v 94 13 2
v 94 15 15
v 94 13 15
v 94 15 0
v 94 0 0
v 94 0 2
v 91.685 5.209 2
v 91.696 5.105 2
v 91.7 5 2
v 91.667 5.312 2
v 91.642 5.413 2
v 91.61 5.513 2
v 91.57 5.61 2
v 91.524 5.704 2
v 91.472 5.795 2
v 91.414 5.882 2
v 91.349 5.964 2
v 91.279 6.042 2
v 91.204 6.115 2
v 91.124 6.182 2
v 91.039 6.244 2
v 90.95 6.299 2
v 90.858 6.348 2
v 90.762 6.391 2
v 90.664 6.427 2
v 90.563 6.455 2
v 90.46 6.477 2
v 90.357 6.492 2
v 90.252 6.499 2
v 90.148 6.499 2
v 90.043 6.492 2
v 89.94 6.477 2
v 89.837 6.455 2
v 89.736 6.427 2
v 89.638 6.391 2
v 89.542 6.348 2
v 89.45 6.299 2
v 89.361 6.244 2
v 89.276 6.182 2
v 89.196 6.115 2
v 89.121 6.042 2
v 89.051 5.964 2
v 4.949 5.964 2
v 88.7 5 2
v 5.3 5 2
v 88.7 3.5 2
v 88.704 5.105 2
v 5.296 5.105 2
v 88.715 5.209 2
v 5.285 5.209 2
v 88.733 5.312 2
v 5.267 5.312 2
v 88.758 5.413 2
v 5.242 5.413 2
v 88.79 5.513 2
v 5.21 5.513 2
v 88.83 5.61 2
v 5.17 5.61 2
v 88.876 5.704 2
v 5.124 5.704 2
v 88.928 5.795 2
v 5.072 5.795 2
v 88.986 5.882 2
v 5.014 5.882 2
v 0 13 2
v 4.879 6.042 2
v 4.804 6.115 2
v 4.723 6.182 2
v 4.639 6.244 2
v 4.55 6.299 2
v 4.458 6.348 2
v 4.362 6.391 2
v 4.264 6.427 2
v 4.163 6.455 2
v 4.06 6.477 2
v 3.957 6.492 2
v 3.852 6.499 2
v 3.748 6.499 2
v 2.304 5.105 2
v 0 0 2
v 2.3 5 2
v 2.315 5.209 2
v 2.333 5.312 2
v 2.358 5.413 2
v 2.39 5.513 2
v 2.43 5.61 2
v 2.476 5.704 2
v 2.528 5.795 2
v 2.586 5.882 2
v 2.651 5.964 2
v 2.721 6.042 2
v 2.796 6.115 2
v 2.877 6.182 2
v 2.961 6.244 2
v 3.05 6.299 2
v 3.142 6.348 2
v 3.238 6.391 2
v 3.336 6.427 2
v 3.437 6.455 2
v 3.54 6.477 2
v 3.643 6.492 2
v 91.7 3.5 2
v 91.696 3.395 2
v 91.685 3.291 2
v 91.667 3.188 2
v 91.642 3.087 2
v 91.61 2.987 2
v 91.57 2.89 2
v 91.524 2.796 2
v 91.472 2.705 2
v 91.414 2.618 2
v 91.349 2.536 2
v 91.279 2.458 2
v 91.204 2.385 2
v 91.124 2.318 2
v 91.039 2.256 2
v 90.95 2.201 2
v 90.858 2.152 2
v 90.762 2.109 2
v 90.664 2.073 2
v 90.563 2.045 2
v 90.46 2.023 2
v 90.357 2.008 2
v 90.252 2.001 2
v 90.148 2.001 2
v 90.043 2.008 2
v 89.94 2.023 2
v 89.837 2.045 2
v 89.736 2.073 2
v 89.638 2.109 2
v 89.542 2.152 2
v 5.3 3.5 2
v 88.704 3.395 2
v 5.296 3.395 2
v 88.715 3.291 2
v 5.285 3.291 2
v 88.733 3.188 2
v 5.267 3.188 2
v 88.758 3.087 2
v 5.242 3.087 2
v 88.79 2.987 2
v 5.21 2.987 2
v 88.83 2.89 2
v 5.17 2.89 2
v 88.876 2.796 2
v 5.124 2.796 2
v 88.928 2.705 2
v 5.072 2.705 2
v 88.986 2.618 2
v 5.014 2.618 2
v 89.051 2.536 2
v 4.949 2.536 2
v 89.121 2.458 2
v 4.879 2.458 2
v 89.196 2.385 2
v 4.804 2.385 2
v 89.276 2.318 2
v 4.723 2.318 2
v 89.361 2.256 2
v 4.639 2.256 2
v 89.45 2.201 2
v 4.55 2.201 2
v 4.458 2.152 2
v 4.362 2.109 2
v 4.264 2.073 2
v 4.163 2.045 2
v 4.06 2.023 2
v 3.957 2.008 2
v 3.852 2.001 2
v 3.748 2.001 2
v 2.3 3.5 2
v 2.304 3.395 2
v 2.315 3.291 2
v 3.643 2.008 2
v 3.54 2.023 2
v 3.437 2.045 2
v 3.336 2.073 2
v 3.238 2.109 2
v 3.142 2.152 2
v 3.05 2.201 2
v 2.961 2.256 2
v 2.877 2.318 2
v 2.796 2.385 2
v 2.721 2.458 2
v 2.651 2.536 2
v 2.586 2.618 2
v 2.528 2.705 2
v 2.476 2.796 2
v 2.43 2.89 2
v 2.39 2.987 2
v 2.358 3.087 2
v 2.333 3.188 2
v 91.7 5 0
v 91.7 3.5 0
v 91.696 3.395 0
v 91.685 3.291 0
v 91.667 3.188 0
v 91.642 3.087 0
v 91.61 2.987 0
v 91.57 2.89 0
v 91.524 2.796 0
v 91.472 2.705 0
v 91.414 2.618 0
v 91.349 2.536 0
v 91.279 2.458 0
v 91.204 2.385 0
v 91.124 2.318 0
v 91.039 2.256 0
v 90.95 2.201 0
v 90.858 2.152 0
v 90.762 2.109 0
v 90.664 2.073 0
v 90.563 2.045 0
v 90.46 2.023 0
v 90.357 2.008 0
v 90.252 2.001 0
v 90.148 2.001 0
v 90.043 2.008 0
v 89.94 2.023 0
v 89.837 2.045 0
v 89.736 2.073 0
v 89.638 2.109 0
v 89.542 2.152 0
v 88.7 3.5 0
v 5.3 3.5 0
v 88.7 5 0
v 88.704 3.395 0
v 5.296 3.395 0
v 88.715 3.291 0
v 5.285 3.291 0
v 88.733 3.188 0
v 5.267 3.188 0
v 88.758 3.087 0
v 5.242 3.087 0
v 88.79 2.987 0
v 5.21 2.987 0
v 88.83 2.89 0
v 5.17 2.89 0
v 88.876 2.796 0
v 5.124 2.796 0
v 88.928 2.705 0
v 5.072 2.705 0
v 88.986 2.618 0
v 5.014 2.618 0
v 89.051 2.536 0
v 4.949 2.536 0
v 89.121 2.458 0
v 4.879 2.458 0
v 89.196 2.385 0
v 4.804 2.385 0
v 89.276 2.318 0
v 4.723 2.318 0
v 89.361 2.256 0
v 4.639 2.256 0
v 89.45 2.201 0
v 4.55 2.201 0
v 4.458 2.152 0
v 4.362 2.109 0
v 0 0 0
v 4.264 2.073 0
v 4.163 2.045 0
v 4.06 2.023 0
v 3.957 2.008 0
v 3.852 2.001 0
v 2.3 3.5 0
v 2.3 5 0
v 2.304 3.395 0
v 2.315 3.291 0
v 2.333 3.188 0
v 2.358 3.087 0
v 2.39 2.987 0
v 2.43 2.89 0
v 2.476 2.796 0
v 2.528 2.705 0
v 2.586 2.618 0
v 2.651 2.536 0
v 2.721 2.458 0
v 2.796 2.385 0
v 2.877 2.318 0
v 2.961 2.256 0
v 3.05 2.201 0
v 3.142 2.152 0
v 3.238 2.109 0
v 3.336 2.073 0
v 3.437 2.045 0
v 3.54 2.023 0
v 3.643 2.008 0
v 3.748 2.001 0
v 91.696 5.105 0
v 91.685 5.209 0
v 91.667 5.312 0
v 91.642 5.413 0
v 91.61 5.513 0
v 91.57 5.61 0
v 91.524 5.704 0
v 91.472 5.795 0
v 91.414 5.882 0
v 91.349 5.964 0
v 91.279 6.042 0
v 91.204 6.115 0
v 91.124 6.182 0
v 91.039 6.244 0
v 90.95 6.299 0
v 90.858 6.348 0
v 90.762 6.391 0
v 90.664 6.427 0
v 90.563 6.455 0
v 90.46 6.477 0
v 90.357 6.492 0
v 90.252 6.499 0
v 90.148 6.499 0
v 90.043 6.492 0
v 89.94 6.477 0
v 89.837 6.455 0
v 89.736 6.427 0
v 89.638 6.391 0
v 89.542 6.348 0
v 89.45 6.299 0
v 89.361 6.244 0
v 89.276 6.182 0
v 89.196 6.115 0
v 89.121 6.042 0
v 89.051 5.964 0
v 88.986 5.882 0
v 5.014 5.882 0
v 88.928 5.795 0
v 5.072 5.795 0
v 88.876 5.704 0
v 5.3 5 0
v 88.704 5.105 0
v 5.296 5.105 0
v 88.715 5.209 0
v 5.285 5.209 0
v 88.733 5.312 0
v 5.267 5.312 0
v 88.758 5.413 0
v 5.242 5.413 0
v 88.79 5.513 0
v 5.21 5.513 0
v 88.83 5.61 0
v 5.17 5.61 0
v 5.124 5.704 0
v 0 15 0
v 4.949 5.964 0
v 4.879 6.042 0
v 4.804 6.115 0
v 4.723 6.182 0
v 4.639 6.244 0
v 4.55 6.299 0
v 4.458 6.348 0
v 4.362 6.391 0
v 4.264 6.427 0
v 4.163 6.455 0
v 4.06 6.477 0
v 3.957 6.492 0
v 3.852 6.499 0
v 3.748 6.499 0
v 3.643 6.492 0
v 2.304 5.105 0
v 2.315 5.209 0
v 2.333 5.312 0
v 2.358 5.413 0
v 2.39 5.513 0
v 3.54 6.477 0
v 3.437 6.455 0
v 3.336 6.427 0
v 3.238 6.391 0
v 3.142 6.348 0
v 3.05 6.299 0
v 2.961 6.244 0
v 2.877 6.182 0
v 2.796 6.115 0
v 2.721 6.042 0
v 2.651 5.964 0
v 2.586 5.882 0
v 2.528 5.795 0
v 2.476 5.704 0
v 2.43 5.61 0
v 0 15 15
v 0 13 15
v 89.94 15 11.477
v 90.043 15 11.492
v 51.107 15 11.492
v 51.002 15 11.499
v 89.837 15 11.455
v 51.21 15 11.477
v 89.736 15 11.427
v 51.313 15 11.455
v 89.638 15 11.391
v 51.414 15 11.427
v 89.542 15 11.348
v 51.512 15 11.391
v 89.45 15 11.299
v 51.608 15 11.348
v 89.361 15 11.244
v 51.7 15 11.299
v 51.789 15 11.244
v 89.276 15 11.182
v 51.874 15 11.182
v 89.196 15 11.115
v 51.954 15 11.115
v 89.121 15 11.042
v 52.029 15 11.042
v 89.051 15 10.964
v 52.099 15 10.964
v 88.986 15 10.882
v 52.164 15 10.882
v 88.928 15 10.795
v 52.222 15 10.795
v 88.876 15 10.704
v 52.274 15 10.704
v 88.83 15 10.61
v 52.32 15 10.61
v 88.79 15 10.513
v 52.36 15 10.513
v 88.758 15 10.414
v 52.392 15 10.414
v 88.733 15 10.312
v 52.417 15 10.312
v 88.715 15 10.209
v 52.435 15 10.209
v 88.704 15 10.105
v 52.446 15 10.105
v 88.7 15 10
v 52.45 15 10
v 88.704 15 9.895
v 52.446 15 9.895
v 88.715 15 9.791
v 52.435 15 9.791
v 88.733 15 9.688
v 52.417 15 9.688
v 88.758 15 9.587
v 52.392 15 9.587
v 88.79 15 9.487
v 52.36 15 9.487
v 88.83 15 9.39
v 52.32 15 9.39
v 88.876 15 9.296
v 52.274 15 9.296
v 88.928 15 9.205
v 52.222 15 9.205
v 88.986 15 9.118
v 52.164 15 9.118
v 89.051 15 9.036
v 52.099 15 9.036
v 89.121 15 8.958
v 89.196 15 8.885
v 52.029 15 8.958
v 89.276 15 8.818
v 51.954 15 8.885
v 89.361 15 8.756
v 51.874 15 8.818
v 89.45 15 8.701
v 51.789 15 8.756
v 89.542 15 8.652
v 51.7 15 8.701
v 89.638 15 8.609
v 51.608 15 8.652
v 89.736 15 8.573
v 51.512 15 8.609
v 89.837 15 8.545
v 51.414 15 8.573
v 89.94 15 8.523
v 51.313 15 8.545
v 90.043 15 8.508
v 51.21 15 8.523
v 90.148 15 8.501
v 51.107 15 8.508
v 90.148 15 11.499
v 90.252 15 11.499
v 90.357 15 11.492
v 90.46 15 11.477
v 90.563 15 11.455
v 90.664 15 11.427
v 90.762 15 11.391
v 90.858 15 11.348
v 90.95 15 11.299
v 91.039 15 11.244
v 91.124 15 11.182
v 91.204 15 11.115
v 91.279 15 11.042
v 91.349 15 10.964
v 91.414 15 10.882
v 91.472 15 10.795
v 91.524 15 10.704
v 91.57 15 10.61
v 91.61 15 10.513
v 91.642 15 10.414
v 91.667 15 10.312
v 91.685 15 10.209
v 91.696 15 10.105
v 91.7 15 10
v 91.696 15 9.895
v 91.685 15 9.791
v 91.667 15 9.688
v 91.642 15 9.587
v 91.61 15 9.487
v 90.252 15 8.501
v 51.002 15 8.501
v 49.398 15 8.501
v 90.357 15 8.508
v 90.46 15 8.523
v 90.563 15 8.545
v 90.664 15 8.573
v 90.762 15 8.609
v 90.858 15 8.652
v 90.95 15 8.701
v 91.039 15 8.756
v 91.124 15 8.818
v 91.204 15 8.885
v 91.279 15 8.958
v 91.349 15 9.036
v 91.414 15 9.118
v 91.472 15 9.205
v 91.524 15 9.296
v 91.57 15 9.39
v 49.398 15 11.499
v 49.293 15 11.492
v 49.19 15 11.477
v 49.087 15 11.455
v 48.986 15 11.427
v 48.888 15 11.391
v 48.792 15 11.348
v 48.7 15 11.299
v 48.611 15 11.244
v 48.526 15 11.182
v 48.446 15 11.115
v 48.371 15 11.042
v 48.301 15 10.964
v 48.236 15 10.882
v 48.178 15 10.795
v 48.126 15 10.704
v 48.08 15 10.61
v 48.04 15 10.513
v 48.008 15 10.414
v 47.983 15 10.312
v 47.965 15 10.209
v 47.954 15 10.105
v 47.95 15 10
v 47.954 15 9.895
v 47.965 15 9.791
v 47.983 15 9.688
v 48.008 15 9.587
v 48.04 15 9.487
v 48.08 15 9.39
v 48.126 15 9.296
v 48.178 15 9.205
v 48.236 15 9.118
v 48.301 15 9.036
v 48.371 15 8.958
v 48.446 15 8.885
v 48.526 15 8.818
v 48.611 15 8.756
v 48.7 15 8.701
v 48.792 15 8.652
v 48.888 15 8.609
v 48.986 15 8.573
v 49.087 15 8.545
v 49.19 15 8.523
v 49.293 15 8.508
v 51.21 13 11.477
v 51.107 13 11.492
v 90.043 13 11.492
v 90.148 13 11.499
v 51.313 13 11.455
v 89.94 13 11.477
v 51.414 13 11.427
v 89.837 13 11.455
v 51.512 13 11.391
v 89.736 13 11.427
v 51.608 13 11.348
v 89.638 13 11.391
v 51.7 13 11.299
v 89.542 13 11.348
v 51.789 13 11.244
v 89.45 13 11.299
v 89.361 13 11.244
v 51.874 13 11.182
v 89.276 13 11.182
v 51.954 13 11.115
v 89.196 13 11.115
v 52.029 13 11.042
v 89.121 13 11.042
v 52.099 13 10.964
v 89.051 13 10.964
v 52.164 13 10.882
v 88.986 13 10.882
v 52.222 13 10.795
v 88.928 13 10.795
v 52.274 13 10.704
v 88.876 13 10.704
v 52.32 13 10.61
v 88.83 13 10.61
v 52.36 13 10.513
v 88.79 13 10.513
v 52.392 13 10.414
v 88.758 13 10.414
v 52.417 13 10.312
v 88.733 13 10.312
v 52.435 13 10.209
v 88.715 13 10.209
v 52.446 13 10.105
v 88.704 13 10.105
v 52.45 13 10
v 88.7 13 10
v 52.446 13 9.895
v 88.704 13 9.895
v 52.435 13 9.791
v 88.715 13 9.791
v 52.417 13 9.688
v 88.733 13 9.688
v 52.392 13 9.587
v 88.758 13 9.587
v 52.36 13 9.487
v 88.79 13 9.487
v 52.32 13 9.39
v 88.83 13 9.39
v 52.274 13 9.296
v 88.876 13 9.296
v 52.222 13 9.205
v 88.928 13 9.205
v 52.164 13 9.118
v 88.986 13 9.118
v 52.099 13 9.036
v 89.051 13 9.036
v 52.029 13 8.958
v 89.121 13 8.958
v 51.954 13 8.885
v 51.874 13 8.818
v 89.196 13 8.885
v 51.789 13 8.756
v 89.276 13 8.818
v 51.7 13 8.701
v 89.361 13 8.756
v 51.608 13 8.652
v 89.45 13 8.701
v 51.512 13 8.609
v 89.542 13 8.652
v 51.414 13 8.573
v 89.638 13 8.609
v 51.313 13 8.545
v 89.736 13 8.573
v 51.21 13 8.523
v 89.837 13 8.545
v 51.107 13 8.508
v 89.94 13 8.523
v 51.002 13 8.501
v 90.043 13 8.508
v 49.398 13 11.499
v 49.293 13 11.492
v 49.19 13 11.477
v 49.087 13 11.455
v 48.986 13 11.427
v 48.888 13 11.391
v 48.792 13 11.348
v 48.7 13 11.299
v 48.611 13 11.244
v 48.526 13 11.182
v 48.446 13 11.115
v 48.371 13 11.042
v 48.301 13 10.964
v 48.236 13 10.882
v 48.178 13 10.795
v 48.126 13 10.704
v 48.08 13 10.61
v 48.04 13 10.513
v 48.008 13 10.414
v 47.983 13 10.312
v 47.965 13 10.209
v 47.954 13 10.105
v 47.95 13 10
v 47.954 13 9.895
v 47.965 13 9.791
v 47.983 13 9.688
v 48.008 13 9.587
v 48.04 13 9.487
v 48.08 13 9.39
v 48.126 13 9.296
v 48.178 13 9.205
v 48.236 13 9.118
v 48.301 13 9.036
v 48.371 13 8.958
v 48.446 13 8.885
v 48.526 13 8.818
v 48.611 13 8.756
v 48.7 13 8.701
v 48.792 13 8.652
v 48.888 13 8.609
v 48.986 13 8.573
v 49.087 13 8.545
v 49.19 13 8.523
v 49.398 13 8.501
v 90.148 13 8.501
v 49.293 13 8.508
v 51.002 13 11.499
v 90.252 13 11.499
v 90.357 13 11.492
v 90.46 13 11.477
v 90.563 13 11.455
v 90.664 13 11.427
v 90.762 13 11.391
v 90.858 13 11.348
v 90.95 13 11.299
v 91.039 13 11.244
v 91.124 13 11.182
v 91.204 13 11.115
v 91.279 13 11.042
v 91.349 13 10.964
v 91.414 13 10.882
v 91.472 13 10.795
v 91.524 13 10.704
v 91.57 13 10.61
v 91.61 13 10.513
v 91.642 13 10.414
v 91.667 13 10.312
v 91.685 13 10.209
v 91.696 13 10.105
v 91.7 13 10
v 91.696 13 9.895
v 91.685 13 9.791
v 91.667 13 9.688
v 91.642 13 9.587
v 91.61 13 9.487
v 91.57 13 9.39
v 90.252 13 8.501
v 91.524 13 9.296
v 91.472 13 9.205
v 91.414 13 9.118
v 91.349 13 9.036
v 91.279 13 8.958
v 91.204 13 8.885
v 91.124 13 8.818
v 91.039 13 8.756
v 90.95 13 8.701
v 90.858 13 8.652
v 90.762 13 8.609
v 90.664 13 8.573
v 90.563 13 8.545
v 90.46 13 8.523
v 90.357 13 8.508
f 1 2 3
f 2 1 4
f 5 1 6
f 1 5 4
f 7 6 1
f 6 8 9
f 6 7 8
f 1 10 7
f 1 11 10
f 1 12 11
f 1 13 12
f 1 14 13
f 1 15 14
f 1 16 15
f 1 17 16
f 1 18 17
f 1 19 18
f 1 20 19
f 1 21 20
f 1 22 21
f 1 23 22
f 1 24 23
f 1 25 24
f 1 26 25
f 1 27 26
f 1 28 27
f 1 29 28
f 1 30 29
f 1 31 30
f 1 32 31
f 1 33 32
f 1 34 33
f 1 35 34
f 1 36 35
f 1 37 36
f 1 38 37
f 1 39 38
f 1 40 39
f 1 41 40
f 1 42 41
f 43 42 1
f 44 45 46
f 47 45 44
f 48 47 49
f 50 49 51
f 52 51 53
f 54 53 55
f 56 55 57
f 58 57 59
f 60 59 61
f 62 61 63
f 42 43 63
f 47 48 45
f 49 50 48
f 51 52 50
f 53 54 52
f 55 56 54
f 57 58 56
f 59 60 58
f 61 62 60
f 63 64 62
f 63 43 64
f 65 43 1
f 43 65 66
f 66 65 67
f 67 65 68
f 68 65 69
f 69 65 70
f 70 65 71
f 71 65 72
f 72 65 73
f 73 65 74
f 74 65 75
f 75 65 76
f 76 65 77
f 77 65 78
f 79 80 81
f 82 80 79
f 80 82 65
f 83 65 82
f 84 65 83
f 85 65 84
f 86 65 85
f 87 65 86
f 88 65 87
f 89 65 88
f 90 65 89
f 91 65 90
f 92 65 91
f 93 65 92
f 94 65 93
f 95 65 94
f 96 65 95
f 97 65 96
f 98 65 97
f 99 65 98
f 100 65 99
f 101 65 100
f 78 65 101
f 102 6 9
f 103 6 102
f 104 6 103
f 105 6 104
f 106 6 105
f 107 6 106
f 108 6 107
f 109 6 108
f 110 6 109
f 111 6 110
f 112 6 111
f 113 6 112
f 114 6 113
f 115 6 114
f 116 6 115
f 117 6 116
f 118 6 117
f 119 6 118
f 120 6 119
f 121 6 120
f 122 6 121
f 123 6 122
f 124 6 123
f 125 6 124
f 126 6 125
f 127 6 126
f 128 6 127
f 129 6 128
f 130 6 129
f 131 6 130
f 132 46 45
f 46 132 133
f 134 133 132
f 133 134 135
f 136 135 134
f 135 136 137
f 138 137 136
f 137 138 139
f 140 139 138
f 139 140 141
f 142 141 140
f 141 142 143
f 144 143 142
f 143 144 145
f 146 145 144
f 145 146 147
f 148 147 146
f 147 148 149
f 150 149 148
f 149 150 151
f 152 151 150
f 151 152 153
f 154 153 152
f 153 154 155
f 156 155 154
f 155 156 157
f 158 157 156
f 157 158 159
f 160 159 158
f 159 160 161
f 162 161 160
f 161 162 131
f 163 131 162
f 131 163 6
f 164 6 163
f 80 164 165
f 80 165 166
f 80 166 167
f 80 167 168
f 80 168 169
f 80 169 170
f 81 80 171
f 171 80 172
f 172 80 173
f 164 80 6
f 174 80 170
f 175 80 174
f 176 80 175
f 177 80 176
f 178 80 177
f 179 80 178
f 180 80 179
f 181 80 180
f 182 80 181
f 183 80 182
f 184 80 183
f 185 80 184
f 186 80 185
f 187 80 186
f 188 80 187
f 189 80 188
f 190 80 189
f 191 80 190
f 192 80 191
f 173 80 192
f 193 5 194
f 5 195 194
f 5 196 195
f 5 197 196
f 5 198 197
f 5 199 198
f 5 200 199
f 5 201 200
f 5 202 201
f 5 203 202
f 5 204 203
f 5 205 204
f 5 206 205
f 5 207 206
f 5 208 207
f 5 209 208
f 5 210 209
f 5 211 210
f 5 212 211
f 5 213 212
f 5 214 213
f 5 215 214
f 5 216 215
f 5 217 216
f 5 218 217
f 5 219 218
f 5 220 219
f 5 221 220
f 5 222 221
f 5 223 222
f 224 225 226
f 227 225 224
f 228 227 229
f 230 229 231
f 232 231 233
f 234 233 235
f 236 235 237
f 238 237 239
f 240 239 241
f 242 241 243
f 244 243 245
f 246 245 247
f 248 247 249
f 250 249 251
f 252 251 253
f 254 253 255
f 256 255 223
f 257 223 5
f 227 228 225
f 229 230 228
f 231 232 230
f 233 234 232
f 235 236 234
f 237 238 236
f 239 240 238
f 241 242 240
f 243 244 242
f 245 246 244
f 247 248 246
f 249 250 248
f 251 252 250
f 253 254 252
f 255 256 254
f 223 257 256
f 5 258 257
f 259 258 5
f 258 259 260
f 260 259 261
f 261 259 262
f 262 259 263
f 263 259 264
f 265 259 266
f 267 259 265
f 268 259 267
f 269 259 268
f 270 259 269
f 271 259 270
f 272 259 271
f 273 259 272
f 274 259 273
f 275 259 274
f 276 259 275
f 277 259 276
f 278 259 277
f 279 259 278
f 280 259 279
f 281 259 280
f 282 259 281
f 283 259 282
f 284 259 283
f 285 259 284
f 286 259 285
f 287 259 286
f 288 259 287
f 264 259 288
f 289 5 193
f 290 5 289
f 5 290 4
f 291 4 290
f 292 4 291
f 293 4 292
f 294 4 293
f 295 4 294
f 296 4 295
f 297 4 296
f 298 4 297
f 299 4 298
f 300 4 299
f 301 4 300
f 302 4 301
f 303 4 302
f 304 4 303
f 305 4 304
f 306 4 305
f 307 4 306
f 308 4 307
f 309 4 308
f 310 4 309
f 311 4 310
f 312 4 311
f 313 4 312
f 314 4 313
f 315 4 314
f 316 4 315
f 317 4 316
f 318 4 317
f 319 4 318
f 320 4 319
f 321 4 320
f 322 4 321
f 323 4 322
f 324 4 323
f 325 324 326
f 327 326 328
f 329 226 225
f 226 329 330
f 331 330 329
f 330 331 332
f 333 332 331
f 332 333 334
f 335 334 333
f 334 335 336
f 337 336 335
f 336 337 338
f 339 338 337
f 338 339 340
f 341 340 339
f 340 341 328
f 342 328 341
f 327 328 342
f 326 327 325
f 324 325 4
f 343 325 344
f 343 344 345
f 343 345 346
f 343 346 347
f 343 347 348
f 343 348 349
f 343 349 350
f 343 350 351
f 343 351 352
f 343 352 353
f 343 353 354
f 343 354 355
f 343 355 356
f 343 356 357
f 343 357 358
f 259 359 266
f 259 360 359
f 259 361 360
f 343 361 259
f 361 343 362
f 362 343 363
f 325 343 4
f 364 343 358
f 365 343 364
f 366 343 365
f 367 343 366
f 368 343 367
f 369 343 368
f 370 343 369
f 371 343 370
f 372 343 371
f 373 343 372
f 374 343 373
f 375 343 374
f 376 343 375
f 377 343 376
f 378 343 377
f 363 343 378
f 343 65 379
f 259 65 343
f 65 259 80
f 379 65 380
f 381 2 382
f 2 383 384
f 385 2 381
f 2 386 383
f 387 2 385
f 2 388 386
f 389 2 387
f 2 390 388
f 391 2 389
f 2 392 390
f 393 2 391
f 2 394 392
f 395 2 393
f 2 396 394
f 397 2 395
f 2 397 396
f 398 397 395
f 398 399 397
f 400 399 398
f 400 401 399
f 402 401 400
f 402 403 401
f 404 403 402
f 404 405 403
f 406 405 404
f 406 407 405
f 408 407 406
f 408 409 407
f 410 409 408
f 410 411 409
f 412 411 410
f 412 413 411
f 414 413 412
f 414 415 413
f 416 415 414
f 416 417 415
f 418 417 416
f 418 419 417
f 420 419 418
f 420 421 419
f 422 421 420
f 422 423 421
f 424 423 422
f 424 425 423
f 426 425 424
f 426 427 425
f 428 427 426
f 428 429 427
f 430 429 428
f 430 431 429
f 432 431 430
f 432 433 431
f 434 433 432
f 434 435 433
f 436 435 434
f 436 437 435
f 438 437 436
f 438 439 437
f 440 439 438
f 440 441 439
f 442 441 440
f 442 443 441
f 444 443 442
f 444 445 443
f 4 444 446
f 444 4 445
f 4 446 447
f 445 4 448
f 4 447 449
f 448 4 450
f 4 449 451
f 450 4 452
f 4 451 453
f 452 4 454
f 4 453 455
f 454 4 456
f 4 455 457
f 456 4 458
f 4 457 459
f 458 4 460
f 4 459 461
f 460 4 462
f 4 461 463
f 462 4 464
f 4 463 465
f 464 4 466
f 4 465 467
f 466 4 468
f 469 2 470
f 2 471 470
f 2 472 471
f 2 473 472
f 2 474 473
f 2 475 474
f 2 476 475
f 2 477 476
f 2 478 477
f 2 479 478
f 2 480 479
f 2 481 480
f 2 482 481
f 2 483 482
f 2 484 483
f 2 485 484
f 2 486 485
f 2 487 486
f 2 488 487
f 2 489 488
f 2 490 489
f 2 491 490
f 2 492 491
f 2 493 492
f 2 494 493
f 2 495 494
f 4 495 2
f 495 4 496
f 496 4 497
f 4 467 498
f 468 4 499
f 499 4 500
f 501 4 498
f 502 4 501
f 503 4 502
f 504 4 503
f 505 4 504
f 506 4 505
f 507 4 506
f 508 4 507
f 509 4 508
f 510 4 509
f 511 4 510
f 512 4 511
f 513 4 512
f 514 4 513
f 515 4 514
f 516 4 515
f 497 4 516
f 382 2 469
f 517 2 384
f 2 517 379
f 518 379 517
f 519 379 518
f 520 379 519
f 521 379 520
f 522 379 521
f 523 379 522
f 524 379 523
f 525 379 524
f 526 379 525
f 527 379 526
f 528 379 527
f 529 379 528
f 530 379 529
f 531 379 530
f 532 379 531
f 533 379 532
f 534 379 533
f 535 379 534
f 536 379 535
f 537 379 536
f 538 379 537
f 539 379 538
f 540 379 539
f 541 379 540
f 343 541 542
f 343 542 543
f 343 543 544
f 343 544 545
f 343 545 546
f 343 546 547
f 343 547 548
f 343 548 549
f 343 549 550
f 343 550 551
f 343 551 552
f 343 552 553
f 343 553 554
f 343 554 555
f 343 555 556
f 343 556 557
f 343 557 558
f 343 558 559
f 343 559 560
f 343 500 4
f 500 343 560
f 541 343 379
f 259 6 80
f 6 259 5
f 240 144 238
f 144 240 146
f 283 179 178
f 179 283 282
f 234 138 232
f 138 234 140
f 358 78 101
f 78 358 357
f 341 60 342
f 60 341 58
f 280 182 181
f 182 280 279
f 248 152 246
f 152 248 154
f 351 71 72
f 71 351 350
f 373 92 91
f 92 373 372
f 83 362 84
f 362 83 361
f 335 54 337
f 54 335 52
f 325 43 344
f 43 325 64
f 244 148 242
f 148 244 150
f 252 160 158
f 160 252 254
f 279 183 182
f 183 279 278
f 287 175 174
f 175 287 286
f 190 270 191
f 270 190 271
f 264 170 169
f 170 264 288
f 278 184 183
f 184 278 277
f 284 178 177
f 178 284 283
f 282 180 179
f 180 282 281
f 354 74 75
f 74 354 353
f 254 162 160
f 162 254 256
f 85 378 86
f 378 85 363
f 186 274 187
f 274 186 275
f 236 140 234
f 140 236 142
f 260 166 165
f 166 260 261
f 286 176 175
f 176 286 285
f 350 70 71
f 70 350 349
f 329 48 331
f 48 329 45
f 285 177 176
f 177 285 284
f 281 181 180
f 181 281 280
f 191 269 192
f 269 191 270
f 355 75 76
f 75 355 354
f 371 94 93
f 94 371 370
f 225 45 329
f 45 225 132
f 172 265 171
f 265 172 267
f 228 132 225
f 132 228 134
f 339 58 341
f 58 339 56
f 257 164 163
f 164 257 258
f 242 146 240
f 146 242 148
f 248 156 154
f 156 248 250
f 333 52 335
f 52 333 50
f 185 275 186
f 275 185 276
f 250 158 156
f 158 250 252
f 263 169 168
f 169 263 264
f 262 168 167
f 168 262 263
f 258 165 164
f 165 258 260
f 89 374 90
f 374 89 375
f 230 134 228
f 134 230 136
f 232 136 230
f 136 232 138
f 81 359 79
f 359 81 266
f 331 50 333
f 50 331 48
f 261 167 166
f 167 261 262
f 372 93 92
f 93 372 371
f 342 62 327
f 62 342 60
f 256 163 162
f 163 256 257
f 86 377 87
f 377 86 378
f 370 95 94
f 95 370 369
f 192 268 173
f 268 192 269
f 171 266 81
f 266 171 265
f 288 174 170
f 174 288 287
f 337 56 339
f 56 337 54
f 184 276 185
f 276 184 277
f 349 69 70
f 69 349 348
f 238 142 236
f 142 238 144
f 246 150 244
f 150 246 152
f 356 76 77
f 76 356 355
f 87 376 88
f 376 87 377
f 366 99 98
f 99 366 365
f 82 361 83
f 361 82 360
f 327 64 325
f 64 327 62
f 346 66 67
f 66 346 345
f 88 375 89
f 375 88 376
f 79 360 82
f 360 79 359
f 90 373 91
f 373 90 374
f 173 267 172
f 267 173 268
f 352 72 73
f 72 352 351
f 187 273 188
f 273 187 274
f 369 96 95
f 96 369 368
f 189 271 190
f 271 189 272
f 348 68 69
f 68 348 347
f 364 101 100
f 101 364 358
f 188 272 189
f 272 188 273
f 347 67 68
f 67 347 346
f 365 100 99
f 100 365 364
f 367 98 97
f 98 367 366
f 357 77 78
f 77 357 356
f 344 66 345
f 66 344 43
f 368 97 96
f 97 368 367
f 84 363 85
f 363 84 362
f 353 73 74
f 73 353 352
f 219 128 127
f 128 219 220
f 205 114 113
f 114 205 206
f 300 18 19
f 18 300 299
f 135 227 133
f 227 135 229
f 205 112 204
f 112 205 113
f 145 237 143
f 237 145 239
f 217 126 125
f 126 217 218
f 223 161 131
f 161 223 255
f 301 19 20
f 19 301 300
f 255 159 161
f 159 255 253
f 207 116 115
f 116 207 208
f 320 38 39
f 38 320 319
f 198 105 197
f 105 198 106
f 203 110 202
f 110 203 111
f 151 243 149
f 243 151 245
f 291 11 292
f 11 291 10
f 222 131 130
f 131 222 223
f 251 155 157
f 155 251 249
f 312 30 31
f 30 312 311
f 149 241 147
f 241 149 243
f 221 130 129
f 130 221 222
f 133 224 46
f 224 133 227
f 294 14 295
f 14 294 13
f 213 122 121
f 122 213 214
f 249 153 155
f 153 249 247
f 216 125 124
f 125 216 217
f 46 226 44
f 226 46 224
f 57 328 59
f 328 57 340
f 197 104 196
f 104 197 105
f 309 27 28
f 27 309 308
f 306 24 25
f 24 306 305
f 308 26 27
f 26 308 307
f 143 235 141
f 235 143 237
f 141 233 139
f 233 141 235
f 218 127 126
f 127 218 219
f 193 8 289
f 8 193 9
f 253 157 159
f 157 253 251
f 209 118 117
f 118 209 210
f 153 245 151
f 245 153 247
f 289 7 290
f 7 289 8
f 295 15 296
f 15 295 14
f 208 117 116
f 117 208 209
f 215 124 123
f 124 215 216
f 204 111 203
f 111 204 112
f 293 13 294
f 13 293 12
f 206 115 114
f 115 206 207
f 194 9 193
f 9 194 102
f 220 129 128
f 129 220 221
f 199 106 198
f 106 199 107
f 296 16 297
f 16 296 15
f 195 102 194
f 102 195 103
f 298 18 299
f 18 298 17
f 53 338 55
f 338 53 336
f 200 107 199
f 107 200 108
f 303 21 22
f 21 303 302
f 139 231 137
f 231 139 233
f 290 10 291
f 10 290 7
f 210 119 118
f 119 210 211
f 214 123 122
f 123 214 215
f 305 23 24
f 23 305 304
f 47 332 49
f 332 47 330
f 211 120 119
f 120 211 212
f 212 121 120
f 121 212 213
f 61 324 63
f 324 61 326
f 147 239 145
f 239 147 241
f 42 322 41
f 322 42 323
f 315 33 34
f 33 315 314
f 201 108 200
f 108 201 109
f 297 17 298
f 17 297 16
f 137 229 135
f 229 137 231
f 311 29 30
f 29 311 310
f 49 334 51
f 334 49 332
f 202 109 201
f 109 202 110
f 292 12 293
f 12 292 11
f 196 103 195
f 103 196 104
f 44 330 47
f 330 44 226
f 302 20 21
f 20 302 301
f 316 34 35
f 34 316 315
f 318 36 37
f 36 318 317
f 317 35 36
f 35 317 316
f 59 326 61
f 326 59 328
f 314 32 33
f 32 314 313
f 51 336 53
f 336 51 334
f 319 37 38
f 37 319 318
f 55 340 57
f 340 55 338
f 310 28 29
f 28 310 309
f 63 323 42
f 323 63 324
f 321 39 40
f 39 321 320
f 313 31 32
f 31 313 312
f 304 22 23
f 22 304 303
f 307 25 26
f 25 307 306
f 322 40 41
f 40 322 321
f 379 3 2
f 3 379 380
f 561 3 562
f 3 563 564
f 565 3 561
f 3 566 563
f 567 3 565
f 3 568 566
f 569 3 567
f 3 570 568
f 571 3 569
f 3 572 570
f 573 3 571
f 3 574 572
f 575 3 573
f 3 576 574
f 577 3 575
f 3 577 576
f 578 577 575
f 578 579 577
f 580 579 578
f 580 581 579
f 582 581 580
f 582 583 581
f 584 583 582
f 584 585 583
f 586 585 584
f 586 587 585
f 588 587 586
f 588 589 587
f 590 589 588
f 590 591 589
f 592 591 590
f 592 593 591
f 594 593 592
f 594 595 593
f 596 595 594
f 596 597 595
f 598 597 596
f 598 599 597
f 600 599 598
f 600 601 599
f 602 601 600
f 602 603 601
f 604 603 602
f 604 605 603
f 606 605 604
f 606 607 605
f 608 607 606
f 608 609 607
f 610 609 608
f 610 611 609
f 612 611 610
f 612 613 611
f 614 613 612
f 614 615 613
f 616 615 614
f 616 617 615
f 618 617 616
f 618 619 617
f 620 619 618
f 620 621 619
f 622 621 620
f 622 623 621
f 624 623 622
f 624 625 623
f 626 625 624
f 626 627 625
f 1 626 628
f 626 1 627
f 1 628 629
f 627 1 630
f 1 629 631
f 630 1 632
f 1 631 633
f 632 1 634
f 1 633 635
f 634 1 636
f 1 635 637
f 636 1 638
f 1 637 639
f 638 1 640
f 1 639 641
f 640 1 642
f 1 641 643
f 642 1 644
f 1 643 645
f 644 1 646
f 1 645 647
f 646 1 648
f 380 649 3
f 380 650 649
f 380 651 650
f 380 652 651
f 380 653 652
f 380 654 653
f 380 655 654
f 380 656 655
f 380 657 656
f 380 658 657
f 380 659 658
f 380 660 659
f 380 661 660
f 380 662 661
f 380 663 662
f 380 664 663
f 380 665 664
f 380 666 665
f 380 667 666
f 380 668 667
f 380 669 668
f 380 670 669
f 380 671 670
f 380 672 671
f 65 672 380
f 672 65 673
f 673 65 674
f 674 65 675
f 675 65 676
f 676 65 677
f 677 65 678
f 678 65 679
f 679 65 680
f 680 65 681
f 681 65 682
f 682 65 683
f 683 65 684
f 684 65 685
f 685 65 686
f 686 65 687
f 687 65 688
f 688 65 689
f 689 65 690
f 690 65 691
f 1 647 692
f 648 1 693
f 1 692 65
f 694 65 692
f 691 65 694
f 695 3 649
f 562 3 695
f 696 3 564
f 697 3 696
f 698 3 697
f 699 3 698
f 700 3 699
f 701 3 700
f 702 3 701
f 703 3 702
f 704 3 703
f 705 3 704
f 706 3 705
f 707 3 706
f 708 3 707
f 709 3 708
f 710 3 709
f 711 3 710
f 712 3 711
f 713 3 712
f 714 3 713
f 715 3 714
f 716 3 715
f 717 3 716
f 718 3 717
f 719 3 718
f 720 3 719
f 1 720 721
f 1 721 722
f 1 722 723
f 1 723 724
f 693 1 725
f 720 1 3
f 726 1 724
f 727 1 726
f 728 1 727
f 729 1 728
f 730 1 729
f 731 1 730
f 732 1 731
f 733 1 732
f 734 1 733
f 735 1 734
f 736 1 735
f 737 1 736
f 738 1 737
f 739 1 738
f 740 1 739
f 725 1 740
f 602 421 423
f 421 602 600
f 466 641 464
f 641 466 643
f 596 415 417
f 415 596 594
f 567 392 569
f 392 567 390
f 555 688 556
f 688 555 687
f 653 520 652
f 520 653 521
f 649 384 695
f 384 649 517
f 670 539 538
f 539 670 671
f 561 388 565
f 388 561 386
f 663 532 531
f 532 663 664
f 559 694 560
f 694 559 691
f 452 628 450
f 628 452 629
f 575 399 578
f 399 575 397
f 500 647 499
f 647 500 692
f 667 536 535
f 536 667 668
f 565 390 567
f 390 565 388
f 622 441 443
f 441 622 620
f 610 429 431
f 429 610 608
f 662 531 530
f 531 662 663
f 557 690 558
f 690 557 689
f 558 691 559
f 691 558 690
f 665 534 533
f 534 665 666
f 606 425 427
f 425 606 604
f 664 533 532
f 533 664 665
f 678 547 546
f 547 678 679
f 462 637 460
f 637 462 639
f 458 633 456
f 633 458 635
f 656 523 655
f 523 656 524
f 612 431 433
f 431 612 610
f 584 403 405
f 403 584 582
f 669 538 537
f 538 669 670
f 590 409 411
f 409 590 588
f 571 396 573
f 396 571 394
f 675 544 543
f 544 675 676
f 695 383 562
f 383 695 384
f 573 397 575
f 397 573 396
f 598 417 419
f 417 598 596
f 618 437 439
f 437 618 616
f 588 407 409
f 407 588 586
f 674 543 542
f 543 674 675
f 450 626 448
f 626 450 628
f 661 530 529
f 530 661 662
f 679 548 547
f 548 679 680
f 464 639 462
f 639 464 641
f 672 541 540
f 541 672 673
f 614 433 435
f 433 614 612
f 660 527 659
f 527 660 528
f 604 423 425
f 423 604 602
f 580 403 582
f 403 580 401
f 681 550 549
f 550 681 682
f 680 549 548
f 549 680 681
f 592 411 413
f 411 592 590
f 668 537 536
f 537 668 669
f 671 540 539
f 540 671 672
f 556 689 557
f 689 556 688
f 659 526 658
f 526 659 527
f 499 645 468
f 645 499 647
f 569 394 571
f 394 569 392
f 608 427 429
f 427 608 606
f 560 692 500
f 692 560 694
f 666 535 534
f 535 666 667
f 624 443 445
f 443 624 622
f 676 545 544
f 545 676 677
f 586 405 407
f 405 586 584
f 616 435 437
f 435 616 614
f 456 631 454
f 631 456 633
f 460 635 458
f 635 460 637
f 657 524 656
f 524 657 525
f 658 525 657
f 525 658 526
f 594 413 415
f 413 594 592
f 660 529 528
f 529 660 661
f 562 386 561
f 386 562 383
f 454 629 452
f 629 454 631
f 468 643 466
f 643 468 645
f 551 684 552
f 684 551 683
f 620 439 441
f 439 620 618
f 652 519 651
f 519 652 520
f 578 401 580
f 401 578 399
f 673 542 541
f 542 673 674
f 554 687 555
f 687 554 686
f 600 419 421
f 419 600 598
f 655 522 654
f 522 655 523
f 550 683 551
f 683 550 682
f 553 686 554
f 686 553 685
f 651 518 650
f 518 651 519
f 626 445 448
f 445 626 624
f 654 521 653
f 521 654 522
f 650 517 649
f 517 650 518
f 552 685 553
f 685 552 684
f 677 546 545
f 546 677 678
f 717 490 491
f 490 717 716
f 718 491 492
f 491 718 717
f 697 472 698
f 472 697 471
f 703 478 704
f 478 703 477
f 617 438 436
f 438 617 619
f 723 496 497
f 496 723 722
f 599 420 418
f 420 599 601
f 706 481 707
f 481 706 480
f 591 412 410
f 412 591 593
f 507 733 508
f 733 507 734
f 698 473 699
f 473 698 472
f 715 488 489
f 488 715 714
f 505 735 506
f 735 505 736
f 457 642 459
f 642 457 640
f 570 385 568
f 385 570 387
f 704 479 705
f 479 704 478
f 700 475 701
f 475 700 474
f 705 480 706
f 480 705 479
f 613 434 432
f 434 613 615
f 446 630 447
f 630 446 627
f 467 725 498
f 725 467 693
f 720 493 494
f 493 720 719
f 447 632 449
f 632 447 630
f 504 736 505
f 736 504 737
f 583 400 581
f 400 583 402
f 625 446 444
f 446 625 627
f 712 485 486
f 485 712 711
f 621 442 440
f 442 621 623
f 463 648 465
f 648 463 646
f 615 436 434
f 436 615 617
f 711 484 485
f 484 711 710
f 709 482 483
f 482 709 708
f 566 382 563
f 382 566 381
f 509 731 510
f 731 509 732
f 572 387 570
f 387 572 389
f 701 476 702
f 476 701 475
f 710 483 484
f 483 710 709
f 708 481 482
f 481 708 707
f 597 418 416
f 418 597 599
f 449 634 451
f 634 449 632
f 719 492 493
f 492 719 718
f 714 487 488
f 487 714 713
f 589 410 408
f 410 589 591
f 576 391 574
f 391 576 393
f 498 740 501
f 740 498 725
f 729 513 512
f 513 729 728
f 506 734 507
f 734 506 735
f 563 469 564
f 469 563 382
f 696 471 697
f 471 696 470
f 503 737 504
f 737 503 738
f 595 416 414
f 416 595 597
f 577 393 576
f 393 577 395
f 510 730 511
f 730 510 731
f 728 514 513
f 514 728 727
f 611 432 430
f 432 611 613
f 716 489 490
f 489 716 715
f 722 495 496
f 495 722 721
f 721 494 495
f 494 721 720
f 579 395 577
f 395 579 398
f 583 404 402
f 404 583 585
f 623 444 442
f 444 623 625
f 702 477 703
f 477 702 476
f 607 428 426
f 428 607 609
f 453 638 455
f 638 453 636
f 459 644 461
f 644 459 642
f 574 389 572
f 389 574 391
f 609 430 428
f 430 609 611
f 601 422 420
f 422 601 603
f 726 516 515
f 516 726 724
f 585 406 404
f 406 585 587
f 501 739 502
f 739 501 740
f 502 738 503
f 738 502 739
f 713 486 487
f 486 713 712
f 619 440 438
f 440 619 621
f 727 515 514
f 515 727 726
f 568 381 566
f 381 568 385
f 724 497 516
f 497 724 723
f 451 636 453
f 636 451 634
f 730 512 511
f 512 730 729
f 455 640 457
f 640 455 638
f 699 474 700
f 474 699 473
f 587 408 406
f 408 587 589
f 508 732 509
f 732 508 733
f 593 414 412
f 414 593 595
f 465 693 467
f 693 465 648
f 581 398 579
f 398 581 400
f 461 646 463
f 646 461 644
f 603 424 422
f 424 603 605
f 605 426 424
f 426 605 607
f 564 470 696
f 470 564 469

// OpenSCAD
$fn=90;

plateLength = 94;
plateThickness = 2;
basePlateWidth = 15;

screwHoleDiameter = 3;
screwHeadDiameter = 5.5;

slotHoleLength = 1.5*screwHoleDiameter;

difference(){
	cube([plateLength, basePlateWidth, plateThickness]);
	
	translate([3.8, 3.5, 0])
		#slotHole(screwHoleDiameter, slotHoleLength, height=plateThickness);
	translate([plateLength-3.8, 3.5, 0])
		#slotHole(screwHoleDiameter, slotHoleLength, height=plateThickness);
}

difference(){
	angledPlateWidth = 15;
	holeHeightPosition = 10;
	translate([0, basePlateWidth-plateThickness, 0])
		cube([plateLength, plateThickness, angledPlateWidth]);

	translate([plateLength-3.8-43+slotHoleLength/2, basePlateWidth, holeHeightPosition])
		rotate([90, 0, 0])
			#slotHole(slotHoleLength, screwHoleDiameter, height=plateThickness);
	translate([plateLength-3.8, basePlateWidth, holeHeightPosition])
		rotate([90, 0, 0])
			#cylinder(d=screwHoleDiameter,  h=plateThickness);
}



module slotHole(x, y, height){
	width = min(x,y);
	length = max(x,y);
	hull(){
		cylinder(d=width, h=height);
		translate([max(x-y, 0), max(y-x, 0), 0])
			cylinder(d=width, h=height);
	}
}
